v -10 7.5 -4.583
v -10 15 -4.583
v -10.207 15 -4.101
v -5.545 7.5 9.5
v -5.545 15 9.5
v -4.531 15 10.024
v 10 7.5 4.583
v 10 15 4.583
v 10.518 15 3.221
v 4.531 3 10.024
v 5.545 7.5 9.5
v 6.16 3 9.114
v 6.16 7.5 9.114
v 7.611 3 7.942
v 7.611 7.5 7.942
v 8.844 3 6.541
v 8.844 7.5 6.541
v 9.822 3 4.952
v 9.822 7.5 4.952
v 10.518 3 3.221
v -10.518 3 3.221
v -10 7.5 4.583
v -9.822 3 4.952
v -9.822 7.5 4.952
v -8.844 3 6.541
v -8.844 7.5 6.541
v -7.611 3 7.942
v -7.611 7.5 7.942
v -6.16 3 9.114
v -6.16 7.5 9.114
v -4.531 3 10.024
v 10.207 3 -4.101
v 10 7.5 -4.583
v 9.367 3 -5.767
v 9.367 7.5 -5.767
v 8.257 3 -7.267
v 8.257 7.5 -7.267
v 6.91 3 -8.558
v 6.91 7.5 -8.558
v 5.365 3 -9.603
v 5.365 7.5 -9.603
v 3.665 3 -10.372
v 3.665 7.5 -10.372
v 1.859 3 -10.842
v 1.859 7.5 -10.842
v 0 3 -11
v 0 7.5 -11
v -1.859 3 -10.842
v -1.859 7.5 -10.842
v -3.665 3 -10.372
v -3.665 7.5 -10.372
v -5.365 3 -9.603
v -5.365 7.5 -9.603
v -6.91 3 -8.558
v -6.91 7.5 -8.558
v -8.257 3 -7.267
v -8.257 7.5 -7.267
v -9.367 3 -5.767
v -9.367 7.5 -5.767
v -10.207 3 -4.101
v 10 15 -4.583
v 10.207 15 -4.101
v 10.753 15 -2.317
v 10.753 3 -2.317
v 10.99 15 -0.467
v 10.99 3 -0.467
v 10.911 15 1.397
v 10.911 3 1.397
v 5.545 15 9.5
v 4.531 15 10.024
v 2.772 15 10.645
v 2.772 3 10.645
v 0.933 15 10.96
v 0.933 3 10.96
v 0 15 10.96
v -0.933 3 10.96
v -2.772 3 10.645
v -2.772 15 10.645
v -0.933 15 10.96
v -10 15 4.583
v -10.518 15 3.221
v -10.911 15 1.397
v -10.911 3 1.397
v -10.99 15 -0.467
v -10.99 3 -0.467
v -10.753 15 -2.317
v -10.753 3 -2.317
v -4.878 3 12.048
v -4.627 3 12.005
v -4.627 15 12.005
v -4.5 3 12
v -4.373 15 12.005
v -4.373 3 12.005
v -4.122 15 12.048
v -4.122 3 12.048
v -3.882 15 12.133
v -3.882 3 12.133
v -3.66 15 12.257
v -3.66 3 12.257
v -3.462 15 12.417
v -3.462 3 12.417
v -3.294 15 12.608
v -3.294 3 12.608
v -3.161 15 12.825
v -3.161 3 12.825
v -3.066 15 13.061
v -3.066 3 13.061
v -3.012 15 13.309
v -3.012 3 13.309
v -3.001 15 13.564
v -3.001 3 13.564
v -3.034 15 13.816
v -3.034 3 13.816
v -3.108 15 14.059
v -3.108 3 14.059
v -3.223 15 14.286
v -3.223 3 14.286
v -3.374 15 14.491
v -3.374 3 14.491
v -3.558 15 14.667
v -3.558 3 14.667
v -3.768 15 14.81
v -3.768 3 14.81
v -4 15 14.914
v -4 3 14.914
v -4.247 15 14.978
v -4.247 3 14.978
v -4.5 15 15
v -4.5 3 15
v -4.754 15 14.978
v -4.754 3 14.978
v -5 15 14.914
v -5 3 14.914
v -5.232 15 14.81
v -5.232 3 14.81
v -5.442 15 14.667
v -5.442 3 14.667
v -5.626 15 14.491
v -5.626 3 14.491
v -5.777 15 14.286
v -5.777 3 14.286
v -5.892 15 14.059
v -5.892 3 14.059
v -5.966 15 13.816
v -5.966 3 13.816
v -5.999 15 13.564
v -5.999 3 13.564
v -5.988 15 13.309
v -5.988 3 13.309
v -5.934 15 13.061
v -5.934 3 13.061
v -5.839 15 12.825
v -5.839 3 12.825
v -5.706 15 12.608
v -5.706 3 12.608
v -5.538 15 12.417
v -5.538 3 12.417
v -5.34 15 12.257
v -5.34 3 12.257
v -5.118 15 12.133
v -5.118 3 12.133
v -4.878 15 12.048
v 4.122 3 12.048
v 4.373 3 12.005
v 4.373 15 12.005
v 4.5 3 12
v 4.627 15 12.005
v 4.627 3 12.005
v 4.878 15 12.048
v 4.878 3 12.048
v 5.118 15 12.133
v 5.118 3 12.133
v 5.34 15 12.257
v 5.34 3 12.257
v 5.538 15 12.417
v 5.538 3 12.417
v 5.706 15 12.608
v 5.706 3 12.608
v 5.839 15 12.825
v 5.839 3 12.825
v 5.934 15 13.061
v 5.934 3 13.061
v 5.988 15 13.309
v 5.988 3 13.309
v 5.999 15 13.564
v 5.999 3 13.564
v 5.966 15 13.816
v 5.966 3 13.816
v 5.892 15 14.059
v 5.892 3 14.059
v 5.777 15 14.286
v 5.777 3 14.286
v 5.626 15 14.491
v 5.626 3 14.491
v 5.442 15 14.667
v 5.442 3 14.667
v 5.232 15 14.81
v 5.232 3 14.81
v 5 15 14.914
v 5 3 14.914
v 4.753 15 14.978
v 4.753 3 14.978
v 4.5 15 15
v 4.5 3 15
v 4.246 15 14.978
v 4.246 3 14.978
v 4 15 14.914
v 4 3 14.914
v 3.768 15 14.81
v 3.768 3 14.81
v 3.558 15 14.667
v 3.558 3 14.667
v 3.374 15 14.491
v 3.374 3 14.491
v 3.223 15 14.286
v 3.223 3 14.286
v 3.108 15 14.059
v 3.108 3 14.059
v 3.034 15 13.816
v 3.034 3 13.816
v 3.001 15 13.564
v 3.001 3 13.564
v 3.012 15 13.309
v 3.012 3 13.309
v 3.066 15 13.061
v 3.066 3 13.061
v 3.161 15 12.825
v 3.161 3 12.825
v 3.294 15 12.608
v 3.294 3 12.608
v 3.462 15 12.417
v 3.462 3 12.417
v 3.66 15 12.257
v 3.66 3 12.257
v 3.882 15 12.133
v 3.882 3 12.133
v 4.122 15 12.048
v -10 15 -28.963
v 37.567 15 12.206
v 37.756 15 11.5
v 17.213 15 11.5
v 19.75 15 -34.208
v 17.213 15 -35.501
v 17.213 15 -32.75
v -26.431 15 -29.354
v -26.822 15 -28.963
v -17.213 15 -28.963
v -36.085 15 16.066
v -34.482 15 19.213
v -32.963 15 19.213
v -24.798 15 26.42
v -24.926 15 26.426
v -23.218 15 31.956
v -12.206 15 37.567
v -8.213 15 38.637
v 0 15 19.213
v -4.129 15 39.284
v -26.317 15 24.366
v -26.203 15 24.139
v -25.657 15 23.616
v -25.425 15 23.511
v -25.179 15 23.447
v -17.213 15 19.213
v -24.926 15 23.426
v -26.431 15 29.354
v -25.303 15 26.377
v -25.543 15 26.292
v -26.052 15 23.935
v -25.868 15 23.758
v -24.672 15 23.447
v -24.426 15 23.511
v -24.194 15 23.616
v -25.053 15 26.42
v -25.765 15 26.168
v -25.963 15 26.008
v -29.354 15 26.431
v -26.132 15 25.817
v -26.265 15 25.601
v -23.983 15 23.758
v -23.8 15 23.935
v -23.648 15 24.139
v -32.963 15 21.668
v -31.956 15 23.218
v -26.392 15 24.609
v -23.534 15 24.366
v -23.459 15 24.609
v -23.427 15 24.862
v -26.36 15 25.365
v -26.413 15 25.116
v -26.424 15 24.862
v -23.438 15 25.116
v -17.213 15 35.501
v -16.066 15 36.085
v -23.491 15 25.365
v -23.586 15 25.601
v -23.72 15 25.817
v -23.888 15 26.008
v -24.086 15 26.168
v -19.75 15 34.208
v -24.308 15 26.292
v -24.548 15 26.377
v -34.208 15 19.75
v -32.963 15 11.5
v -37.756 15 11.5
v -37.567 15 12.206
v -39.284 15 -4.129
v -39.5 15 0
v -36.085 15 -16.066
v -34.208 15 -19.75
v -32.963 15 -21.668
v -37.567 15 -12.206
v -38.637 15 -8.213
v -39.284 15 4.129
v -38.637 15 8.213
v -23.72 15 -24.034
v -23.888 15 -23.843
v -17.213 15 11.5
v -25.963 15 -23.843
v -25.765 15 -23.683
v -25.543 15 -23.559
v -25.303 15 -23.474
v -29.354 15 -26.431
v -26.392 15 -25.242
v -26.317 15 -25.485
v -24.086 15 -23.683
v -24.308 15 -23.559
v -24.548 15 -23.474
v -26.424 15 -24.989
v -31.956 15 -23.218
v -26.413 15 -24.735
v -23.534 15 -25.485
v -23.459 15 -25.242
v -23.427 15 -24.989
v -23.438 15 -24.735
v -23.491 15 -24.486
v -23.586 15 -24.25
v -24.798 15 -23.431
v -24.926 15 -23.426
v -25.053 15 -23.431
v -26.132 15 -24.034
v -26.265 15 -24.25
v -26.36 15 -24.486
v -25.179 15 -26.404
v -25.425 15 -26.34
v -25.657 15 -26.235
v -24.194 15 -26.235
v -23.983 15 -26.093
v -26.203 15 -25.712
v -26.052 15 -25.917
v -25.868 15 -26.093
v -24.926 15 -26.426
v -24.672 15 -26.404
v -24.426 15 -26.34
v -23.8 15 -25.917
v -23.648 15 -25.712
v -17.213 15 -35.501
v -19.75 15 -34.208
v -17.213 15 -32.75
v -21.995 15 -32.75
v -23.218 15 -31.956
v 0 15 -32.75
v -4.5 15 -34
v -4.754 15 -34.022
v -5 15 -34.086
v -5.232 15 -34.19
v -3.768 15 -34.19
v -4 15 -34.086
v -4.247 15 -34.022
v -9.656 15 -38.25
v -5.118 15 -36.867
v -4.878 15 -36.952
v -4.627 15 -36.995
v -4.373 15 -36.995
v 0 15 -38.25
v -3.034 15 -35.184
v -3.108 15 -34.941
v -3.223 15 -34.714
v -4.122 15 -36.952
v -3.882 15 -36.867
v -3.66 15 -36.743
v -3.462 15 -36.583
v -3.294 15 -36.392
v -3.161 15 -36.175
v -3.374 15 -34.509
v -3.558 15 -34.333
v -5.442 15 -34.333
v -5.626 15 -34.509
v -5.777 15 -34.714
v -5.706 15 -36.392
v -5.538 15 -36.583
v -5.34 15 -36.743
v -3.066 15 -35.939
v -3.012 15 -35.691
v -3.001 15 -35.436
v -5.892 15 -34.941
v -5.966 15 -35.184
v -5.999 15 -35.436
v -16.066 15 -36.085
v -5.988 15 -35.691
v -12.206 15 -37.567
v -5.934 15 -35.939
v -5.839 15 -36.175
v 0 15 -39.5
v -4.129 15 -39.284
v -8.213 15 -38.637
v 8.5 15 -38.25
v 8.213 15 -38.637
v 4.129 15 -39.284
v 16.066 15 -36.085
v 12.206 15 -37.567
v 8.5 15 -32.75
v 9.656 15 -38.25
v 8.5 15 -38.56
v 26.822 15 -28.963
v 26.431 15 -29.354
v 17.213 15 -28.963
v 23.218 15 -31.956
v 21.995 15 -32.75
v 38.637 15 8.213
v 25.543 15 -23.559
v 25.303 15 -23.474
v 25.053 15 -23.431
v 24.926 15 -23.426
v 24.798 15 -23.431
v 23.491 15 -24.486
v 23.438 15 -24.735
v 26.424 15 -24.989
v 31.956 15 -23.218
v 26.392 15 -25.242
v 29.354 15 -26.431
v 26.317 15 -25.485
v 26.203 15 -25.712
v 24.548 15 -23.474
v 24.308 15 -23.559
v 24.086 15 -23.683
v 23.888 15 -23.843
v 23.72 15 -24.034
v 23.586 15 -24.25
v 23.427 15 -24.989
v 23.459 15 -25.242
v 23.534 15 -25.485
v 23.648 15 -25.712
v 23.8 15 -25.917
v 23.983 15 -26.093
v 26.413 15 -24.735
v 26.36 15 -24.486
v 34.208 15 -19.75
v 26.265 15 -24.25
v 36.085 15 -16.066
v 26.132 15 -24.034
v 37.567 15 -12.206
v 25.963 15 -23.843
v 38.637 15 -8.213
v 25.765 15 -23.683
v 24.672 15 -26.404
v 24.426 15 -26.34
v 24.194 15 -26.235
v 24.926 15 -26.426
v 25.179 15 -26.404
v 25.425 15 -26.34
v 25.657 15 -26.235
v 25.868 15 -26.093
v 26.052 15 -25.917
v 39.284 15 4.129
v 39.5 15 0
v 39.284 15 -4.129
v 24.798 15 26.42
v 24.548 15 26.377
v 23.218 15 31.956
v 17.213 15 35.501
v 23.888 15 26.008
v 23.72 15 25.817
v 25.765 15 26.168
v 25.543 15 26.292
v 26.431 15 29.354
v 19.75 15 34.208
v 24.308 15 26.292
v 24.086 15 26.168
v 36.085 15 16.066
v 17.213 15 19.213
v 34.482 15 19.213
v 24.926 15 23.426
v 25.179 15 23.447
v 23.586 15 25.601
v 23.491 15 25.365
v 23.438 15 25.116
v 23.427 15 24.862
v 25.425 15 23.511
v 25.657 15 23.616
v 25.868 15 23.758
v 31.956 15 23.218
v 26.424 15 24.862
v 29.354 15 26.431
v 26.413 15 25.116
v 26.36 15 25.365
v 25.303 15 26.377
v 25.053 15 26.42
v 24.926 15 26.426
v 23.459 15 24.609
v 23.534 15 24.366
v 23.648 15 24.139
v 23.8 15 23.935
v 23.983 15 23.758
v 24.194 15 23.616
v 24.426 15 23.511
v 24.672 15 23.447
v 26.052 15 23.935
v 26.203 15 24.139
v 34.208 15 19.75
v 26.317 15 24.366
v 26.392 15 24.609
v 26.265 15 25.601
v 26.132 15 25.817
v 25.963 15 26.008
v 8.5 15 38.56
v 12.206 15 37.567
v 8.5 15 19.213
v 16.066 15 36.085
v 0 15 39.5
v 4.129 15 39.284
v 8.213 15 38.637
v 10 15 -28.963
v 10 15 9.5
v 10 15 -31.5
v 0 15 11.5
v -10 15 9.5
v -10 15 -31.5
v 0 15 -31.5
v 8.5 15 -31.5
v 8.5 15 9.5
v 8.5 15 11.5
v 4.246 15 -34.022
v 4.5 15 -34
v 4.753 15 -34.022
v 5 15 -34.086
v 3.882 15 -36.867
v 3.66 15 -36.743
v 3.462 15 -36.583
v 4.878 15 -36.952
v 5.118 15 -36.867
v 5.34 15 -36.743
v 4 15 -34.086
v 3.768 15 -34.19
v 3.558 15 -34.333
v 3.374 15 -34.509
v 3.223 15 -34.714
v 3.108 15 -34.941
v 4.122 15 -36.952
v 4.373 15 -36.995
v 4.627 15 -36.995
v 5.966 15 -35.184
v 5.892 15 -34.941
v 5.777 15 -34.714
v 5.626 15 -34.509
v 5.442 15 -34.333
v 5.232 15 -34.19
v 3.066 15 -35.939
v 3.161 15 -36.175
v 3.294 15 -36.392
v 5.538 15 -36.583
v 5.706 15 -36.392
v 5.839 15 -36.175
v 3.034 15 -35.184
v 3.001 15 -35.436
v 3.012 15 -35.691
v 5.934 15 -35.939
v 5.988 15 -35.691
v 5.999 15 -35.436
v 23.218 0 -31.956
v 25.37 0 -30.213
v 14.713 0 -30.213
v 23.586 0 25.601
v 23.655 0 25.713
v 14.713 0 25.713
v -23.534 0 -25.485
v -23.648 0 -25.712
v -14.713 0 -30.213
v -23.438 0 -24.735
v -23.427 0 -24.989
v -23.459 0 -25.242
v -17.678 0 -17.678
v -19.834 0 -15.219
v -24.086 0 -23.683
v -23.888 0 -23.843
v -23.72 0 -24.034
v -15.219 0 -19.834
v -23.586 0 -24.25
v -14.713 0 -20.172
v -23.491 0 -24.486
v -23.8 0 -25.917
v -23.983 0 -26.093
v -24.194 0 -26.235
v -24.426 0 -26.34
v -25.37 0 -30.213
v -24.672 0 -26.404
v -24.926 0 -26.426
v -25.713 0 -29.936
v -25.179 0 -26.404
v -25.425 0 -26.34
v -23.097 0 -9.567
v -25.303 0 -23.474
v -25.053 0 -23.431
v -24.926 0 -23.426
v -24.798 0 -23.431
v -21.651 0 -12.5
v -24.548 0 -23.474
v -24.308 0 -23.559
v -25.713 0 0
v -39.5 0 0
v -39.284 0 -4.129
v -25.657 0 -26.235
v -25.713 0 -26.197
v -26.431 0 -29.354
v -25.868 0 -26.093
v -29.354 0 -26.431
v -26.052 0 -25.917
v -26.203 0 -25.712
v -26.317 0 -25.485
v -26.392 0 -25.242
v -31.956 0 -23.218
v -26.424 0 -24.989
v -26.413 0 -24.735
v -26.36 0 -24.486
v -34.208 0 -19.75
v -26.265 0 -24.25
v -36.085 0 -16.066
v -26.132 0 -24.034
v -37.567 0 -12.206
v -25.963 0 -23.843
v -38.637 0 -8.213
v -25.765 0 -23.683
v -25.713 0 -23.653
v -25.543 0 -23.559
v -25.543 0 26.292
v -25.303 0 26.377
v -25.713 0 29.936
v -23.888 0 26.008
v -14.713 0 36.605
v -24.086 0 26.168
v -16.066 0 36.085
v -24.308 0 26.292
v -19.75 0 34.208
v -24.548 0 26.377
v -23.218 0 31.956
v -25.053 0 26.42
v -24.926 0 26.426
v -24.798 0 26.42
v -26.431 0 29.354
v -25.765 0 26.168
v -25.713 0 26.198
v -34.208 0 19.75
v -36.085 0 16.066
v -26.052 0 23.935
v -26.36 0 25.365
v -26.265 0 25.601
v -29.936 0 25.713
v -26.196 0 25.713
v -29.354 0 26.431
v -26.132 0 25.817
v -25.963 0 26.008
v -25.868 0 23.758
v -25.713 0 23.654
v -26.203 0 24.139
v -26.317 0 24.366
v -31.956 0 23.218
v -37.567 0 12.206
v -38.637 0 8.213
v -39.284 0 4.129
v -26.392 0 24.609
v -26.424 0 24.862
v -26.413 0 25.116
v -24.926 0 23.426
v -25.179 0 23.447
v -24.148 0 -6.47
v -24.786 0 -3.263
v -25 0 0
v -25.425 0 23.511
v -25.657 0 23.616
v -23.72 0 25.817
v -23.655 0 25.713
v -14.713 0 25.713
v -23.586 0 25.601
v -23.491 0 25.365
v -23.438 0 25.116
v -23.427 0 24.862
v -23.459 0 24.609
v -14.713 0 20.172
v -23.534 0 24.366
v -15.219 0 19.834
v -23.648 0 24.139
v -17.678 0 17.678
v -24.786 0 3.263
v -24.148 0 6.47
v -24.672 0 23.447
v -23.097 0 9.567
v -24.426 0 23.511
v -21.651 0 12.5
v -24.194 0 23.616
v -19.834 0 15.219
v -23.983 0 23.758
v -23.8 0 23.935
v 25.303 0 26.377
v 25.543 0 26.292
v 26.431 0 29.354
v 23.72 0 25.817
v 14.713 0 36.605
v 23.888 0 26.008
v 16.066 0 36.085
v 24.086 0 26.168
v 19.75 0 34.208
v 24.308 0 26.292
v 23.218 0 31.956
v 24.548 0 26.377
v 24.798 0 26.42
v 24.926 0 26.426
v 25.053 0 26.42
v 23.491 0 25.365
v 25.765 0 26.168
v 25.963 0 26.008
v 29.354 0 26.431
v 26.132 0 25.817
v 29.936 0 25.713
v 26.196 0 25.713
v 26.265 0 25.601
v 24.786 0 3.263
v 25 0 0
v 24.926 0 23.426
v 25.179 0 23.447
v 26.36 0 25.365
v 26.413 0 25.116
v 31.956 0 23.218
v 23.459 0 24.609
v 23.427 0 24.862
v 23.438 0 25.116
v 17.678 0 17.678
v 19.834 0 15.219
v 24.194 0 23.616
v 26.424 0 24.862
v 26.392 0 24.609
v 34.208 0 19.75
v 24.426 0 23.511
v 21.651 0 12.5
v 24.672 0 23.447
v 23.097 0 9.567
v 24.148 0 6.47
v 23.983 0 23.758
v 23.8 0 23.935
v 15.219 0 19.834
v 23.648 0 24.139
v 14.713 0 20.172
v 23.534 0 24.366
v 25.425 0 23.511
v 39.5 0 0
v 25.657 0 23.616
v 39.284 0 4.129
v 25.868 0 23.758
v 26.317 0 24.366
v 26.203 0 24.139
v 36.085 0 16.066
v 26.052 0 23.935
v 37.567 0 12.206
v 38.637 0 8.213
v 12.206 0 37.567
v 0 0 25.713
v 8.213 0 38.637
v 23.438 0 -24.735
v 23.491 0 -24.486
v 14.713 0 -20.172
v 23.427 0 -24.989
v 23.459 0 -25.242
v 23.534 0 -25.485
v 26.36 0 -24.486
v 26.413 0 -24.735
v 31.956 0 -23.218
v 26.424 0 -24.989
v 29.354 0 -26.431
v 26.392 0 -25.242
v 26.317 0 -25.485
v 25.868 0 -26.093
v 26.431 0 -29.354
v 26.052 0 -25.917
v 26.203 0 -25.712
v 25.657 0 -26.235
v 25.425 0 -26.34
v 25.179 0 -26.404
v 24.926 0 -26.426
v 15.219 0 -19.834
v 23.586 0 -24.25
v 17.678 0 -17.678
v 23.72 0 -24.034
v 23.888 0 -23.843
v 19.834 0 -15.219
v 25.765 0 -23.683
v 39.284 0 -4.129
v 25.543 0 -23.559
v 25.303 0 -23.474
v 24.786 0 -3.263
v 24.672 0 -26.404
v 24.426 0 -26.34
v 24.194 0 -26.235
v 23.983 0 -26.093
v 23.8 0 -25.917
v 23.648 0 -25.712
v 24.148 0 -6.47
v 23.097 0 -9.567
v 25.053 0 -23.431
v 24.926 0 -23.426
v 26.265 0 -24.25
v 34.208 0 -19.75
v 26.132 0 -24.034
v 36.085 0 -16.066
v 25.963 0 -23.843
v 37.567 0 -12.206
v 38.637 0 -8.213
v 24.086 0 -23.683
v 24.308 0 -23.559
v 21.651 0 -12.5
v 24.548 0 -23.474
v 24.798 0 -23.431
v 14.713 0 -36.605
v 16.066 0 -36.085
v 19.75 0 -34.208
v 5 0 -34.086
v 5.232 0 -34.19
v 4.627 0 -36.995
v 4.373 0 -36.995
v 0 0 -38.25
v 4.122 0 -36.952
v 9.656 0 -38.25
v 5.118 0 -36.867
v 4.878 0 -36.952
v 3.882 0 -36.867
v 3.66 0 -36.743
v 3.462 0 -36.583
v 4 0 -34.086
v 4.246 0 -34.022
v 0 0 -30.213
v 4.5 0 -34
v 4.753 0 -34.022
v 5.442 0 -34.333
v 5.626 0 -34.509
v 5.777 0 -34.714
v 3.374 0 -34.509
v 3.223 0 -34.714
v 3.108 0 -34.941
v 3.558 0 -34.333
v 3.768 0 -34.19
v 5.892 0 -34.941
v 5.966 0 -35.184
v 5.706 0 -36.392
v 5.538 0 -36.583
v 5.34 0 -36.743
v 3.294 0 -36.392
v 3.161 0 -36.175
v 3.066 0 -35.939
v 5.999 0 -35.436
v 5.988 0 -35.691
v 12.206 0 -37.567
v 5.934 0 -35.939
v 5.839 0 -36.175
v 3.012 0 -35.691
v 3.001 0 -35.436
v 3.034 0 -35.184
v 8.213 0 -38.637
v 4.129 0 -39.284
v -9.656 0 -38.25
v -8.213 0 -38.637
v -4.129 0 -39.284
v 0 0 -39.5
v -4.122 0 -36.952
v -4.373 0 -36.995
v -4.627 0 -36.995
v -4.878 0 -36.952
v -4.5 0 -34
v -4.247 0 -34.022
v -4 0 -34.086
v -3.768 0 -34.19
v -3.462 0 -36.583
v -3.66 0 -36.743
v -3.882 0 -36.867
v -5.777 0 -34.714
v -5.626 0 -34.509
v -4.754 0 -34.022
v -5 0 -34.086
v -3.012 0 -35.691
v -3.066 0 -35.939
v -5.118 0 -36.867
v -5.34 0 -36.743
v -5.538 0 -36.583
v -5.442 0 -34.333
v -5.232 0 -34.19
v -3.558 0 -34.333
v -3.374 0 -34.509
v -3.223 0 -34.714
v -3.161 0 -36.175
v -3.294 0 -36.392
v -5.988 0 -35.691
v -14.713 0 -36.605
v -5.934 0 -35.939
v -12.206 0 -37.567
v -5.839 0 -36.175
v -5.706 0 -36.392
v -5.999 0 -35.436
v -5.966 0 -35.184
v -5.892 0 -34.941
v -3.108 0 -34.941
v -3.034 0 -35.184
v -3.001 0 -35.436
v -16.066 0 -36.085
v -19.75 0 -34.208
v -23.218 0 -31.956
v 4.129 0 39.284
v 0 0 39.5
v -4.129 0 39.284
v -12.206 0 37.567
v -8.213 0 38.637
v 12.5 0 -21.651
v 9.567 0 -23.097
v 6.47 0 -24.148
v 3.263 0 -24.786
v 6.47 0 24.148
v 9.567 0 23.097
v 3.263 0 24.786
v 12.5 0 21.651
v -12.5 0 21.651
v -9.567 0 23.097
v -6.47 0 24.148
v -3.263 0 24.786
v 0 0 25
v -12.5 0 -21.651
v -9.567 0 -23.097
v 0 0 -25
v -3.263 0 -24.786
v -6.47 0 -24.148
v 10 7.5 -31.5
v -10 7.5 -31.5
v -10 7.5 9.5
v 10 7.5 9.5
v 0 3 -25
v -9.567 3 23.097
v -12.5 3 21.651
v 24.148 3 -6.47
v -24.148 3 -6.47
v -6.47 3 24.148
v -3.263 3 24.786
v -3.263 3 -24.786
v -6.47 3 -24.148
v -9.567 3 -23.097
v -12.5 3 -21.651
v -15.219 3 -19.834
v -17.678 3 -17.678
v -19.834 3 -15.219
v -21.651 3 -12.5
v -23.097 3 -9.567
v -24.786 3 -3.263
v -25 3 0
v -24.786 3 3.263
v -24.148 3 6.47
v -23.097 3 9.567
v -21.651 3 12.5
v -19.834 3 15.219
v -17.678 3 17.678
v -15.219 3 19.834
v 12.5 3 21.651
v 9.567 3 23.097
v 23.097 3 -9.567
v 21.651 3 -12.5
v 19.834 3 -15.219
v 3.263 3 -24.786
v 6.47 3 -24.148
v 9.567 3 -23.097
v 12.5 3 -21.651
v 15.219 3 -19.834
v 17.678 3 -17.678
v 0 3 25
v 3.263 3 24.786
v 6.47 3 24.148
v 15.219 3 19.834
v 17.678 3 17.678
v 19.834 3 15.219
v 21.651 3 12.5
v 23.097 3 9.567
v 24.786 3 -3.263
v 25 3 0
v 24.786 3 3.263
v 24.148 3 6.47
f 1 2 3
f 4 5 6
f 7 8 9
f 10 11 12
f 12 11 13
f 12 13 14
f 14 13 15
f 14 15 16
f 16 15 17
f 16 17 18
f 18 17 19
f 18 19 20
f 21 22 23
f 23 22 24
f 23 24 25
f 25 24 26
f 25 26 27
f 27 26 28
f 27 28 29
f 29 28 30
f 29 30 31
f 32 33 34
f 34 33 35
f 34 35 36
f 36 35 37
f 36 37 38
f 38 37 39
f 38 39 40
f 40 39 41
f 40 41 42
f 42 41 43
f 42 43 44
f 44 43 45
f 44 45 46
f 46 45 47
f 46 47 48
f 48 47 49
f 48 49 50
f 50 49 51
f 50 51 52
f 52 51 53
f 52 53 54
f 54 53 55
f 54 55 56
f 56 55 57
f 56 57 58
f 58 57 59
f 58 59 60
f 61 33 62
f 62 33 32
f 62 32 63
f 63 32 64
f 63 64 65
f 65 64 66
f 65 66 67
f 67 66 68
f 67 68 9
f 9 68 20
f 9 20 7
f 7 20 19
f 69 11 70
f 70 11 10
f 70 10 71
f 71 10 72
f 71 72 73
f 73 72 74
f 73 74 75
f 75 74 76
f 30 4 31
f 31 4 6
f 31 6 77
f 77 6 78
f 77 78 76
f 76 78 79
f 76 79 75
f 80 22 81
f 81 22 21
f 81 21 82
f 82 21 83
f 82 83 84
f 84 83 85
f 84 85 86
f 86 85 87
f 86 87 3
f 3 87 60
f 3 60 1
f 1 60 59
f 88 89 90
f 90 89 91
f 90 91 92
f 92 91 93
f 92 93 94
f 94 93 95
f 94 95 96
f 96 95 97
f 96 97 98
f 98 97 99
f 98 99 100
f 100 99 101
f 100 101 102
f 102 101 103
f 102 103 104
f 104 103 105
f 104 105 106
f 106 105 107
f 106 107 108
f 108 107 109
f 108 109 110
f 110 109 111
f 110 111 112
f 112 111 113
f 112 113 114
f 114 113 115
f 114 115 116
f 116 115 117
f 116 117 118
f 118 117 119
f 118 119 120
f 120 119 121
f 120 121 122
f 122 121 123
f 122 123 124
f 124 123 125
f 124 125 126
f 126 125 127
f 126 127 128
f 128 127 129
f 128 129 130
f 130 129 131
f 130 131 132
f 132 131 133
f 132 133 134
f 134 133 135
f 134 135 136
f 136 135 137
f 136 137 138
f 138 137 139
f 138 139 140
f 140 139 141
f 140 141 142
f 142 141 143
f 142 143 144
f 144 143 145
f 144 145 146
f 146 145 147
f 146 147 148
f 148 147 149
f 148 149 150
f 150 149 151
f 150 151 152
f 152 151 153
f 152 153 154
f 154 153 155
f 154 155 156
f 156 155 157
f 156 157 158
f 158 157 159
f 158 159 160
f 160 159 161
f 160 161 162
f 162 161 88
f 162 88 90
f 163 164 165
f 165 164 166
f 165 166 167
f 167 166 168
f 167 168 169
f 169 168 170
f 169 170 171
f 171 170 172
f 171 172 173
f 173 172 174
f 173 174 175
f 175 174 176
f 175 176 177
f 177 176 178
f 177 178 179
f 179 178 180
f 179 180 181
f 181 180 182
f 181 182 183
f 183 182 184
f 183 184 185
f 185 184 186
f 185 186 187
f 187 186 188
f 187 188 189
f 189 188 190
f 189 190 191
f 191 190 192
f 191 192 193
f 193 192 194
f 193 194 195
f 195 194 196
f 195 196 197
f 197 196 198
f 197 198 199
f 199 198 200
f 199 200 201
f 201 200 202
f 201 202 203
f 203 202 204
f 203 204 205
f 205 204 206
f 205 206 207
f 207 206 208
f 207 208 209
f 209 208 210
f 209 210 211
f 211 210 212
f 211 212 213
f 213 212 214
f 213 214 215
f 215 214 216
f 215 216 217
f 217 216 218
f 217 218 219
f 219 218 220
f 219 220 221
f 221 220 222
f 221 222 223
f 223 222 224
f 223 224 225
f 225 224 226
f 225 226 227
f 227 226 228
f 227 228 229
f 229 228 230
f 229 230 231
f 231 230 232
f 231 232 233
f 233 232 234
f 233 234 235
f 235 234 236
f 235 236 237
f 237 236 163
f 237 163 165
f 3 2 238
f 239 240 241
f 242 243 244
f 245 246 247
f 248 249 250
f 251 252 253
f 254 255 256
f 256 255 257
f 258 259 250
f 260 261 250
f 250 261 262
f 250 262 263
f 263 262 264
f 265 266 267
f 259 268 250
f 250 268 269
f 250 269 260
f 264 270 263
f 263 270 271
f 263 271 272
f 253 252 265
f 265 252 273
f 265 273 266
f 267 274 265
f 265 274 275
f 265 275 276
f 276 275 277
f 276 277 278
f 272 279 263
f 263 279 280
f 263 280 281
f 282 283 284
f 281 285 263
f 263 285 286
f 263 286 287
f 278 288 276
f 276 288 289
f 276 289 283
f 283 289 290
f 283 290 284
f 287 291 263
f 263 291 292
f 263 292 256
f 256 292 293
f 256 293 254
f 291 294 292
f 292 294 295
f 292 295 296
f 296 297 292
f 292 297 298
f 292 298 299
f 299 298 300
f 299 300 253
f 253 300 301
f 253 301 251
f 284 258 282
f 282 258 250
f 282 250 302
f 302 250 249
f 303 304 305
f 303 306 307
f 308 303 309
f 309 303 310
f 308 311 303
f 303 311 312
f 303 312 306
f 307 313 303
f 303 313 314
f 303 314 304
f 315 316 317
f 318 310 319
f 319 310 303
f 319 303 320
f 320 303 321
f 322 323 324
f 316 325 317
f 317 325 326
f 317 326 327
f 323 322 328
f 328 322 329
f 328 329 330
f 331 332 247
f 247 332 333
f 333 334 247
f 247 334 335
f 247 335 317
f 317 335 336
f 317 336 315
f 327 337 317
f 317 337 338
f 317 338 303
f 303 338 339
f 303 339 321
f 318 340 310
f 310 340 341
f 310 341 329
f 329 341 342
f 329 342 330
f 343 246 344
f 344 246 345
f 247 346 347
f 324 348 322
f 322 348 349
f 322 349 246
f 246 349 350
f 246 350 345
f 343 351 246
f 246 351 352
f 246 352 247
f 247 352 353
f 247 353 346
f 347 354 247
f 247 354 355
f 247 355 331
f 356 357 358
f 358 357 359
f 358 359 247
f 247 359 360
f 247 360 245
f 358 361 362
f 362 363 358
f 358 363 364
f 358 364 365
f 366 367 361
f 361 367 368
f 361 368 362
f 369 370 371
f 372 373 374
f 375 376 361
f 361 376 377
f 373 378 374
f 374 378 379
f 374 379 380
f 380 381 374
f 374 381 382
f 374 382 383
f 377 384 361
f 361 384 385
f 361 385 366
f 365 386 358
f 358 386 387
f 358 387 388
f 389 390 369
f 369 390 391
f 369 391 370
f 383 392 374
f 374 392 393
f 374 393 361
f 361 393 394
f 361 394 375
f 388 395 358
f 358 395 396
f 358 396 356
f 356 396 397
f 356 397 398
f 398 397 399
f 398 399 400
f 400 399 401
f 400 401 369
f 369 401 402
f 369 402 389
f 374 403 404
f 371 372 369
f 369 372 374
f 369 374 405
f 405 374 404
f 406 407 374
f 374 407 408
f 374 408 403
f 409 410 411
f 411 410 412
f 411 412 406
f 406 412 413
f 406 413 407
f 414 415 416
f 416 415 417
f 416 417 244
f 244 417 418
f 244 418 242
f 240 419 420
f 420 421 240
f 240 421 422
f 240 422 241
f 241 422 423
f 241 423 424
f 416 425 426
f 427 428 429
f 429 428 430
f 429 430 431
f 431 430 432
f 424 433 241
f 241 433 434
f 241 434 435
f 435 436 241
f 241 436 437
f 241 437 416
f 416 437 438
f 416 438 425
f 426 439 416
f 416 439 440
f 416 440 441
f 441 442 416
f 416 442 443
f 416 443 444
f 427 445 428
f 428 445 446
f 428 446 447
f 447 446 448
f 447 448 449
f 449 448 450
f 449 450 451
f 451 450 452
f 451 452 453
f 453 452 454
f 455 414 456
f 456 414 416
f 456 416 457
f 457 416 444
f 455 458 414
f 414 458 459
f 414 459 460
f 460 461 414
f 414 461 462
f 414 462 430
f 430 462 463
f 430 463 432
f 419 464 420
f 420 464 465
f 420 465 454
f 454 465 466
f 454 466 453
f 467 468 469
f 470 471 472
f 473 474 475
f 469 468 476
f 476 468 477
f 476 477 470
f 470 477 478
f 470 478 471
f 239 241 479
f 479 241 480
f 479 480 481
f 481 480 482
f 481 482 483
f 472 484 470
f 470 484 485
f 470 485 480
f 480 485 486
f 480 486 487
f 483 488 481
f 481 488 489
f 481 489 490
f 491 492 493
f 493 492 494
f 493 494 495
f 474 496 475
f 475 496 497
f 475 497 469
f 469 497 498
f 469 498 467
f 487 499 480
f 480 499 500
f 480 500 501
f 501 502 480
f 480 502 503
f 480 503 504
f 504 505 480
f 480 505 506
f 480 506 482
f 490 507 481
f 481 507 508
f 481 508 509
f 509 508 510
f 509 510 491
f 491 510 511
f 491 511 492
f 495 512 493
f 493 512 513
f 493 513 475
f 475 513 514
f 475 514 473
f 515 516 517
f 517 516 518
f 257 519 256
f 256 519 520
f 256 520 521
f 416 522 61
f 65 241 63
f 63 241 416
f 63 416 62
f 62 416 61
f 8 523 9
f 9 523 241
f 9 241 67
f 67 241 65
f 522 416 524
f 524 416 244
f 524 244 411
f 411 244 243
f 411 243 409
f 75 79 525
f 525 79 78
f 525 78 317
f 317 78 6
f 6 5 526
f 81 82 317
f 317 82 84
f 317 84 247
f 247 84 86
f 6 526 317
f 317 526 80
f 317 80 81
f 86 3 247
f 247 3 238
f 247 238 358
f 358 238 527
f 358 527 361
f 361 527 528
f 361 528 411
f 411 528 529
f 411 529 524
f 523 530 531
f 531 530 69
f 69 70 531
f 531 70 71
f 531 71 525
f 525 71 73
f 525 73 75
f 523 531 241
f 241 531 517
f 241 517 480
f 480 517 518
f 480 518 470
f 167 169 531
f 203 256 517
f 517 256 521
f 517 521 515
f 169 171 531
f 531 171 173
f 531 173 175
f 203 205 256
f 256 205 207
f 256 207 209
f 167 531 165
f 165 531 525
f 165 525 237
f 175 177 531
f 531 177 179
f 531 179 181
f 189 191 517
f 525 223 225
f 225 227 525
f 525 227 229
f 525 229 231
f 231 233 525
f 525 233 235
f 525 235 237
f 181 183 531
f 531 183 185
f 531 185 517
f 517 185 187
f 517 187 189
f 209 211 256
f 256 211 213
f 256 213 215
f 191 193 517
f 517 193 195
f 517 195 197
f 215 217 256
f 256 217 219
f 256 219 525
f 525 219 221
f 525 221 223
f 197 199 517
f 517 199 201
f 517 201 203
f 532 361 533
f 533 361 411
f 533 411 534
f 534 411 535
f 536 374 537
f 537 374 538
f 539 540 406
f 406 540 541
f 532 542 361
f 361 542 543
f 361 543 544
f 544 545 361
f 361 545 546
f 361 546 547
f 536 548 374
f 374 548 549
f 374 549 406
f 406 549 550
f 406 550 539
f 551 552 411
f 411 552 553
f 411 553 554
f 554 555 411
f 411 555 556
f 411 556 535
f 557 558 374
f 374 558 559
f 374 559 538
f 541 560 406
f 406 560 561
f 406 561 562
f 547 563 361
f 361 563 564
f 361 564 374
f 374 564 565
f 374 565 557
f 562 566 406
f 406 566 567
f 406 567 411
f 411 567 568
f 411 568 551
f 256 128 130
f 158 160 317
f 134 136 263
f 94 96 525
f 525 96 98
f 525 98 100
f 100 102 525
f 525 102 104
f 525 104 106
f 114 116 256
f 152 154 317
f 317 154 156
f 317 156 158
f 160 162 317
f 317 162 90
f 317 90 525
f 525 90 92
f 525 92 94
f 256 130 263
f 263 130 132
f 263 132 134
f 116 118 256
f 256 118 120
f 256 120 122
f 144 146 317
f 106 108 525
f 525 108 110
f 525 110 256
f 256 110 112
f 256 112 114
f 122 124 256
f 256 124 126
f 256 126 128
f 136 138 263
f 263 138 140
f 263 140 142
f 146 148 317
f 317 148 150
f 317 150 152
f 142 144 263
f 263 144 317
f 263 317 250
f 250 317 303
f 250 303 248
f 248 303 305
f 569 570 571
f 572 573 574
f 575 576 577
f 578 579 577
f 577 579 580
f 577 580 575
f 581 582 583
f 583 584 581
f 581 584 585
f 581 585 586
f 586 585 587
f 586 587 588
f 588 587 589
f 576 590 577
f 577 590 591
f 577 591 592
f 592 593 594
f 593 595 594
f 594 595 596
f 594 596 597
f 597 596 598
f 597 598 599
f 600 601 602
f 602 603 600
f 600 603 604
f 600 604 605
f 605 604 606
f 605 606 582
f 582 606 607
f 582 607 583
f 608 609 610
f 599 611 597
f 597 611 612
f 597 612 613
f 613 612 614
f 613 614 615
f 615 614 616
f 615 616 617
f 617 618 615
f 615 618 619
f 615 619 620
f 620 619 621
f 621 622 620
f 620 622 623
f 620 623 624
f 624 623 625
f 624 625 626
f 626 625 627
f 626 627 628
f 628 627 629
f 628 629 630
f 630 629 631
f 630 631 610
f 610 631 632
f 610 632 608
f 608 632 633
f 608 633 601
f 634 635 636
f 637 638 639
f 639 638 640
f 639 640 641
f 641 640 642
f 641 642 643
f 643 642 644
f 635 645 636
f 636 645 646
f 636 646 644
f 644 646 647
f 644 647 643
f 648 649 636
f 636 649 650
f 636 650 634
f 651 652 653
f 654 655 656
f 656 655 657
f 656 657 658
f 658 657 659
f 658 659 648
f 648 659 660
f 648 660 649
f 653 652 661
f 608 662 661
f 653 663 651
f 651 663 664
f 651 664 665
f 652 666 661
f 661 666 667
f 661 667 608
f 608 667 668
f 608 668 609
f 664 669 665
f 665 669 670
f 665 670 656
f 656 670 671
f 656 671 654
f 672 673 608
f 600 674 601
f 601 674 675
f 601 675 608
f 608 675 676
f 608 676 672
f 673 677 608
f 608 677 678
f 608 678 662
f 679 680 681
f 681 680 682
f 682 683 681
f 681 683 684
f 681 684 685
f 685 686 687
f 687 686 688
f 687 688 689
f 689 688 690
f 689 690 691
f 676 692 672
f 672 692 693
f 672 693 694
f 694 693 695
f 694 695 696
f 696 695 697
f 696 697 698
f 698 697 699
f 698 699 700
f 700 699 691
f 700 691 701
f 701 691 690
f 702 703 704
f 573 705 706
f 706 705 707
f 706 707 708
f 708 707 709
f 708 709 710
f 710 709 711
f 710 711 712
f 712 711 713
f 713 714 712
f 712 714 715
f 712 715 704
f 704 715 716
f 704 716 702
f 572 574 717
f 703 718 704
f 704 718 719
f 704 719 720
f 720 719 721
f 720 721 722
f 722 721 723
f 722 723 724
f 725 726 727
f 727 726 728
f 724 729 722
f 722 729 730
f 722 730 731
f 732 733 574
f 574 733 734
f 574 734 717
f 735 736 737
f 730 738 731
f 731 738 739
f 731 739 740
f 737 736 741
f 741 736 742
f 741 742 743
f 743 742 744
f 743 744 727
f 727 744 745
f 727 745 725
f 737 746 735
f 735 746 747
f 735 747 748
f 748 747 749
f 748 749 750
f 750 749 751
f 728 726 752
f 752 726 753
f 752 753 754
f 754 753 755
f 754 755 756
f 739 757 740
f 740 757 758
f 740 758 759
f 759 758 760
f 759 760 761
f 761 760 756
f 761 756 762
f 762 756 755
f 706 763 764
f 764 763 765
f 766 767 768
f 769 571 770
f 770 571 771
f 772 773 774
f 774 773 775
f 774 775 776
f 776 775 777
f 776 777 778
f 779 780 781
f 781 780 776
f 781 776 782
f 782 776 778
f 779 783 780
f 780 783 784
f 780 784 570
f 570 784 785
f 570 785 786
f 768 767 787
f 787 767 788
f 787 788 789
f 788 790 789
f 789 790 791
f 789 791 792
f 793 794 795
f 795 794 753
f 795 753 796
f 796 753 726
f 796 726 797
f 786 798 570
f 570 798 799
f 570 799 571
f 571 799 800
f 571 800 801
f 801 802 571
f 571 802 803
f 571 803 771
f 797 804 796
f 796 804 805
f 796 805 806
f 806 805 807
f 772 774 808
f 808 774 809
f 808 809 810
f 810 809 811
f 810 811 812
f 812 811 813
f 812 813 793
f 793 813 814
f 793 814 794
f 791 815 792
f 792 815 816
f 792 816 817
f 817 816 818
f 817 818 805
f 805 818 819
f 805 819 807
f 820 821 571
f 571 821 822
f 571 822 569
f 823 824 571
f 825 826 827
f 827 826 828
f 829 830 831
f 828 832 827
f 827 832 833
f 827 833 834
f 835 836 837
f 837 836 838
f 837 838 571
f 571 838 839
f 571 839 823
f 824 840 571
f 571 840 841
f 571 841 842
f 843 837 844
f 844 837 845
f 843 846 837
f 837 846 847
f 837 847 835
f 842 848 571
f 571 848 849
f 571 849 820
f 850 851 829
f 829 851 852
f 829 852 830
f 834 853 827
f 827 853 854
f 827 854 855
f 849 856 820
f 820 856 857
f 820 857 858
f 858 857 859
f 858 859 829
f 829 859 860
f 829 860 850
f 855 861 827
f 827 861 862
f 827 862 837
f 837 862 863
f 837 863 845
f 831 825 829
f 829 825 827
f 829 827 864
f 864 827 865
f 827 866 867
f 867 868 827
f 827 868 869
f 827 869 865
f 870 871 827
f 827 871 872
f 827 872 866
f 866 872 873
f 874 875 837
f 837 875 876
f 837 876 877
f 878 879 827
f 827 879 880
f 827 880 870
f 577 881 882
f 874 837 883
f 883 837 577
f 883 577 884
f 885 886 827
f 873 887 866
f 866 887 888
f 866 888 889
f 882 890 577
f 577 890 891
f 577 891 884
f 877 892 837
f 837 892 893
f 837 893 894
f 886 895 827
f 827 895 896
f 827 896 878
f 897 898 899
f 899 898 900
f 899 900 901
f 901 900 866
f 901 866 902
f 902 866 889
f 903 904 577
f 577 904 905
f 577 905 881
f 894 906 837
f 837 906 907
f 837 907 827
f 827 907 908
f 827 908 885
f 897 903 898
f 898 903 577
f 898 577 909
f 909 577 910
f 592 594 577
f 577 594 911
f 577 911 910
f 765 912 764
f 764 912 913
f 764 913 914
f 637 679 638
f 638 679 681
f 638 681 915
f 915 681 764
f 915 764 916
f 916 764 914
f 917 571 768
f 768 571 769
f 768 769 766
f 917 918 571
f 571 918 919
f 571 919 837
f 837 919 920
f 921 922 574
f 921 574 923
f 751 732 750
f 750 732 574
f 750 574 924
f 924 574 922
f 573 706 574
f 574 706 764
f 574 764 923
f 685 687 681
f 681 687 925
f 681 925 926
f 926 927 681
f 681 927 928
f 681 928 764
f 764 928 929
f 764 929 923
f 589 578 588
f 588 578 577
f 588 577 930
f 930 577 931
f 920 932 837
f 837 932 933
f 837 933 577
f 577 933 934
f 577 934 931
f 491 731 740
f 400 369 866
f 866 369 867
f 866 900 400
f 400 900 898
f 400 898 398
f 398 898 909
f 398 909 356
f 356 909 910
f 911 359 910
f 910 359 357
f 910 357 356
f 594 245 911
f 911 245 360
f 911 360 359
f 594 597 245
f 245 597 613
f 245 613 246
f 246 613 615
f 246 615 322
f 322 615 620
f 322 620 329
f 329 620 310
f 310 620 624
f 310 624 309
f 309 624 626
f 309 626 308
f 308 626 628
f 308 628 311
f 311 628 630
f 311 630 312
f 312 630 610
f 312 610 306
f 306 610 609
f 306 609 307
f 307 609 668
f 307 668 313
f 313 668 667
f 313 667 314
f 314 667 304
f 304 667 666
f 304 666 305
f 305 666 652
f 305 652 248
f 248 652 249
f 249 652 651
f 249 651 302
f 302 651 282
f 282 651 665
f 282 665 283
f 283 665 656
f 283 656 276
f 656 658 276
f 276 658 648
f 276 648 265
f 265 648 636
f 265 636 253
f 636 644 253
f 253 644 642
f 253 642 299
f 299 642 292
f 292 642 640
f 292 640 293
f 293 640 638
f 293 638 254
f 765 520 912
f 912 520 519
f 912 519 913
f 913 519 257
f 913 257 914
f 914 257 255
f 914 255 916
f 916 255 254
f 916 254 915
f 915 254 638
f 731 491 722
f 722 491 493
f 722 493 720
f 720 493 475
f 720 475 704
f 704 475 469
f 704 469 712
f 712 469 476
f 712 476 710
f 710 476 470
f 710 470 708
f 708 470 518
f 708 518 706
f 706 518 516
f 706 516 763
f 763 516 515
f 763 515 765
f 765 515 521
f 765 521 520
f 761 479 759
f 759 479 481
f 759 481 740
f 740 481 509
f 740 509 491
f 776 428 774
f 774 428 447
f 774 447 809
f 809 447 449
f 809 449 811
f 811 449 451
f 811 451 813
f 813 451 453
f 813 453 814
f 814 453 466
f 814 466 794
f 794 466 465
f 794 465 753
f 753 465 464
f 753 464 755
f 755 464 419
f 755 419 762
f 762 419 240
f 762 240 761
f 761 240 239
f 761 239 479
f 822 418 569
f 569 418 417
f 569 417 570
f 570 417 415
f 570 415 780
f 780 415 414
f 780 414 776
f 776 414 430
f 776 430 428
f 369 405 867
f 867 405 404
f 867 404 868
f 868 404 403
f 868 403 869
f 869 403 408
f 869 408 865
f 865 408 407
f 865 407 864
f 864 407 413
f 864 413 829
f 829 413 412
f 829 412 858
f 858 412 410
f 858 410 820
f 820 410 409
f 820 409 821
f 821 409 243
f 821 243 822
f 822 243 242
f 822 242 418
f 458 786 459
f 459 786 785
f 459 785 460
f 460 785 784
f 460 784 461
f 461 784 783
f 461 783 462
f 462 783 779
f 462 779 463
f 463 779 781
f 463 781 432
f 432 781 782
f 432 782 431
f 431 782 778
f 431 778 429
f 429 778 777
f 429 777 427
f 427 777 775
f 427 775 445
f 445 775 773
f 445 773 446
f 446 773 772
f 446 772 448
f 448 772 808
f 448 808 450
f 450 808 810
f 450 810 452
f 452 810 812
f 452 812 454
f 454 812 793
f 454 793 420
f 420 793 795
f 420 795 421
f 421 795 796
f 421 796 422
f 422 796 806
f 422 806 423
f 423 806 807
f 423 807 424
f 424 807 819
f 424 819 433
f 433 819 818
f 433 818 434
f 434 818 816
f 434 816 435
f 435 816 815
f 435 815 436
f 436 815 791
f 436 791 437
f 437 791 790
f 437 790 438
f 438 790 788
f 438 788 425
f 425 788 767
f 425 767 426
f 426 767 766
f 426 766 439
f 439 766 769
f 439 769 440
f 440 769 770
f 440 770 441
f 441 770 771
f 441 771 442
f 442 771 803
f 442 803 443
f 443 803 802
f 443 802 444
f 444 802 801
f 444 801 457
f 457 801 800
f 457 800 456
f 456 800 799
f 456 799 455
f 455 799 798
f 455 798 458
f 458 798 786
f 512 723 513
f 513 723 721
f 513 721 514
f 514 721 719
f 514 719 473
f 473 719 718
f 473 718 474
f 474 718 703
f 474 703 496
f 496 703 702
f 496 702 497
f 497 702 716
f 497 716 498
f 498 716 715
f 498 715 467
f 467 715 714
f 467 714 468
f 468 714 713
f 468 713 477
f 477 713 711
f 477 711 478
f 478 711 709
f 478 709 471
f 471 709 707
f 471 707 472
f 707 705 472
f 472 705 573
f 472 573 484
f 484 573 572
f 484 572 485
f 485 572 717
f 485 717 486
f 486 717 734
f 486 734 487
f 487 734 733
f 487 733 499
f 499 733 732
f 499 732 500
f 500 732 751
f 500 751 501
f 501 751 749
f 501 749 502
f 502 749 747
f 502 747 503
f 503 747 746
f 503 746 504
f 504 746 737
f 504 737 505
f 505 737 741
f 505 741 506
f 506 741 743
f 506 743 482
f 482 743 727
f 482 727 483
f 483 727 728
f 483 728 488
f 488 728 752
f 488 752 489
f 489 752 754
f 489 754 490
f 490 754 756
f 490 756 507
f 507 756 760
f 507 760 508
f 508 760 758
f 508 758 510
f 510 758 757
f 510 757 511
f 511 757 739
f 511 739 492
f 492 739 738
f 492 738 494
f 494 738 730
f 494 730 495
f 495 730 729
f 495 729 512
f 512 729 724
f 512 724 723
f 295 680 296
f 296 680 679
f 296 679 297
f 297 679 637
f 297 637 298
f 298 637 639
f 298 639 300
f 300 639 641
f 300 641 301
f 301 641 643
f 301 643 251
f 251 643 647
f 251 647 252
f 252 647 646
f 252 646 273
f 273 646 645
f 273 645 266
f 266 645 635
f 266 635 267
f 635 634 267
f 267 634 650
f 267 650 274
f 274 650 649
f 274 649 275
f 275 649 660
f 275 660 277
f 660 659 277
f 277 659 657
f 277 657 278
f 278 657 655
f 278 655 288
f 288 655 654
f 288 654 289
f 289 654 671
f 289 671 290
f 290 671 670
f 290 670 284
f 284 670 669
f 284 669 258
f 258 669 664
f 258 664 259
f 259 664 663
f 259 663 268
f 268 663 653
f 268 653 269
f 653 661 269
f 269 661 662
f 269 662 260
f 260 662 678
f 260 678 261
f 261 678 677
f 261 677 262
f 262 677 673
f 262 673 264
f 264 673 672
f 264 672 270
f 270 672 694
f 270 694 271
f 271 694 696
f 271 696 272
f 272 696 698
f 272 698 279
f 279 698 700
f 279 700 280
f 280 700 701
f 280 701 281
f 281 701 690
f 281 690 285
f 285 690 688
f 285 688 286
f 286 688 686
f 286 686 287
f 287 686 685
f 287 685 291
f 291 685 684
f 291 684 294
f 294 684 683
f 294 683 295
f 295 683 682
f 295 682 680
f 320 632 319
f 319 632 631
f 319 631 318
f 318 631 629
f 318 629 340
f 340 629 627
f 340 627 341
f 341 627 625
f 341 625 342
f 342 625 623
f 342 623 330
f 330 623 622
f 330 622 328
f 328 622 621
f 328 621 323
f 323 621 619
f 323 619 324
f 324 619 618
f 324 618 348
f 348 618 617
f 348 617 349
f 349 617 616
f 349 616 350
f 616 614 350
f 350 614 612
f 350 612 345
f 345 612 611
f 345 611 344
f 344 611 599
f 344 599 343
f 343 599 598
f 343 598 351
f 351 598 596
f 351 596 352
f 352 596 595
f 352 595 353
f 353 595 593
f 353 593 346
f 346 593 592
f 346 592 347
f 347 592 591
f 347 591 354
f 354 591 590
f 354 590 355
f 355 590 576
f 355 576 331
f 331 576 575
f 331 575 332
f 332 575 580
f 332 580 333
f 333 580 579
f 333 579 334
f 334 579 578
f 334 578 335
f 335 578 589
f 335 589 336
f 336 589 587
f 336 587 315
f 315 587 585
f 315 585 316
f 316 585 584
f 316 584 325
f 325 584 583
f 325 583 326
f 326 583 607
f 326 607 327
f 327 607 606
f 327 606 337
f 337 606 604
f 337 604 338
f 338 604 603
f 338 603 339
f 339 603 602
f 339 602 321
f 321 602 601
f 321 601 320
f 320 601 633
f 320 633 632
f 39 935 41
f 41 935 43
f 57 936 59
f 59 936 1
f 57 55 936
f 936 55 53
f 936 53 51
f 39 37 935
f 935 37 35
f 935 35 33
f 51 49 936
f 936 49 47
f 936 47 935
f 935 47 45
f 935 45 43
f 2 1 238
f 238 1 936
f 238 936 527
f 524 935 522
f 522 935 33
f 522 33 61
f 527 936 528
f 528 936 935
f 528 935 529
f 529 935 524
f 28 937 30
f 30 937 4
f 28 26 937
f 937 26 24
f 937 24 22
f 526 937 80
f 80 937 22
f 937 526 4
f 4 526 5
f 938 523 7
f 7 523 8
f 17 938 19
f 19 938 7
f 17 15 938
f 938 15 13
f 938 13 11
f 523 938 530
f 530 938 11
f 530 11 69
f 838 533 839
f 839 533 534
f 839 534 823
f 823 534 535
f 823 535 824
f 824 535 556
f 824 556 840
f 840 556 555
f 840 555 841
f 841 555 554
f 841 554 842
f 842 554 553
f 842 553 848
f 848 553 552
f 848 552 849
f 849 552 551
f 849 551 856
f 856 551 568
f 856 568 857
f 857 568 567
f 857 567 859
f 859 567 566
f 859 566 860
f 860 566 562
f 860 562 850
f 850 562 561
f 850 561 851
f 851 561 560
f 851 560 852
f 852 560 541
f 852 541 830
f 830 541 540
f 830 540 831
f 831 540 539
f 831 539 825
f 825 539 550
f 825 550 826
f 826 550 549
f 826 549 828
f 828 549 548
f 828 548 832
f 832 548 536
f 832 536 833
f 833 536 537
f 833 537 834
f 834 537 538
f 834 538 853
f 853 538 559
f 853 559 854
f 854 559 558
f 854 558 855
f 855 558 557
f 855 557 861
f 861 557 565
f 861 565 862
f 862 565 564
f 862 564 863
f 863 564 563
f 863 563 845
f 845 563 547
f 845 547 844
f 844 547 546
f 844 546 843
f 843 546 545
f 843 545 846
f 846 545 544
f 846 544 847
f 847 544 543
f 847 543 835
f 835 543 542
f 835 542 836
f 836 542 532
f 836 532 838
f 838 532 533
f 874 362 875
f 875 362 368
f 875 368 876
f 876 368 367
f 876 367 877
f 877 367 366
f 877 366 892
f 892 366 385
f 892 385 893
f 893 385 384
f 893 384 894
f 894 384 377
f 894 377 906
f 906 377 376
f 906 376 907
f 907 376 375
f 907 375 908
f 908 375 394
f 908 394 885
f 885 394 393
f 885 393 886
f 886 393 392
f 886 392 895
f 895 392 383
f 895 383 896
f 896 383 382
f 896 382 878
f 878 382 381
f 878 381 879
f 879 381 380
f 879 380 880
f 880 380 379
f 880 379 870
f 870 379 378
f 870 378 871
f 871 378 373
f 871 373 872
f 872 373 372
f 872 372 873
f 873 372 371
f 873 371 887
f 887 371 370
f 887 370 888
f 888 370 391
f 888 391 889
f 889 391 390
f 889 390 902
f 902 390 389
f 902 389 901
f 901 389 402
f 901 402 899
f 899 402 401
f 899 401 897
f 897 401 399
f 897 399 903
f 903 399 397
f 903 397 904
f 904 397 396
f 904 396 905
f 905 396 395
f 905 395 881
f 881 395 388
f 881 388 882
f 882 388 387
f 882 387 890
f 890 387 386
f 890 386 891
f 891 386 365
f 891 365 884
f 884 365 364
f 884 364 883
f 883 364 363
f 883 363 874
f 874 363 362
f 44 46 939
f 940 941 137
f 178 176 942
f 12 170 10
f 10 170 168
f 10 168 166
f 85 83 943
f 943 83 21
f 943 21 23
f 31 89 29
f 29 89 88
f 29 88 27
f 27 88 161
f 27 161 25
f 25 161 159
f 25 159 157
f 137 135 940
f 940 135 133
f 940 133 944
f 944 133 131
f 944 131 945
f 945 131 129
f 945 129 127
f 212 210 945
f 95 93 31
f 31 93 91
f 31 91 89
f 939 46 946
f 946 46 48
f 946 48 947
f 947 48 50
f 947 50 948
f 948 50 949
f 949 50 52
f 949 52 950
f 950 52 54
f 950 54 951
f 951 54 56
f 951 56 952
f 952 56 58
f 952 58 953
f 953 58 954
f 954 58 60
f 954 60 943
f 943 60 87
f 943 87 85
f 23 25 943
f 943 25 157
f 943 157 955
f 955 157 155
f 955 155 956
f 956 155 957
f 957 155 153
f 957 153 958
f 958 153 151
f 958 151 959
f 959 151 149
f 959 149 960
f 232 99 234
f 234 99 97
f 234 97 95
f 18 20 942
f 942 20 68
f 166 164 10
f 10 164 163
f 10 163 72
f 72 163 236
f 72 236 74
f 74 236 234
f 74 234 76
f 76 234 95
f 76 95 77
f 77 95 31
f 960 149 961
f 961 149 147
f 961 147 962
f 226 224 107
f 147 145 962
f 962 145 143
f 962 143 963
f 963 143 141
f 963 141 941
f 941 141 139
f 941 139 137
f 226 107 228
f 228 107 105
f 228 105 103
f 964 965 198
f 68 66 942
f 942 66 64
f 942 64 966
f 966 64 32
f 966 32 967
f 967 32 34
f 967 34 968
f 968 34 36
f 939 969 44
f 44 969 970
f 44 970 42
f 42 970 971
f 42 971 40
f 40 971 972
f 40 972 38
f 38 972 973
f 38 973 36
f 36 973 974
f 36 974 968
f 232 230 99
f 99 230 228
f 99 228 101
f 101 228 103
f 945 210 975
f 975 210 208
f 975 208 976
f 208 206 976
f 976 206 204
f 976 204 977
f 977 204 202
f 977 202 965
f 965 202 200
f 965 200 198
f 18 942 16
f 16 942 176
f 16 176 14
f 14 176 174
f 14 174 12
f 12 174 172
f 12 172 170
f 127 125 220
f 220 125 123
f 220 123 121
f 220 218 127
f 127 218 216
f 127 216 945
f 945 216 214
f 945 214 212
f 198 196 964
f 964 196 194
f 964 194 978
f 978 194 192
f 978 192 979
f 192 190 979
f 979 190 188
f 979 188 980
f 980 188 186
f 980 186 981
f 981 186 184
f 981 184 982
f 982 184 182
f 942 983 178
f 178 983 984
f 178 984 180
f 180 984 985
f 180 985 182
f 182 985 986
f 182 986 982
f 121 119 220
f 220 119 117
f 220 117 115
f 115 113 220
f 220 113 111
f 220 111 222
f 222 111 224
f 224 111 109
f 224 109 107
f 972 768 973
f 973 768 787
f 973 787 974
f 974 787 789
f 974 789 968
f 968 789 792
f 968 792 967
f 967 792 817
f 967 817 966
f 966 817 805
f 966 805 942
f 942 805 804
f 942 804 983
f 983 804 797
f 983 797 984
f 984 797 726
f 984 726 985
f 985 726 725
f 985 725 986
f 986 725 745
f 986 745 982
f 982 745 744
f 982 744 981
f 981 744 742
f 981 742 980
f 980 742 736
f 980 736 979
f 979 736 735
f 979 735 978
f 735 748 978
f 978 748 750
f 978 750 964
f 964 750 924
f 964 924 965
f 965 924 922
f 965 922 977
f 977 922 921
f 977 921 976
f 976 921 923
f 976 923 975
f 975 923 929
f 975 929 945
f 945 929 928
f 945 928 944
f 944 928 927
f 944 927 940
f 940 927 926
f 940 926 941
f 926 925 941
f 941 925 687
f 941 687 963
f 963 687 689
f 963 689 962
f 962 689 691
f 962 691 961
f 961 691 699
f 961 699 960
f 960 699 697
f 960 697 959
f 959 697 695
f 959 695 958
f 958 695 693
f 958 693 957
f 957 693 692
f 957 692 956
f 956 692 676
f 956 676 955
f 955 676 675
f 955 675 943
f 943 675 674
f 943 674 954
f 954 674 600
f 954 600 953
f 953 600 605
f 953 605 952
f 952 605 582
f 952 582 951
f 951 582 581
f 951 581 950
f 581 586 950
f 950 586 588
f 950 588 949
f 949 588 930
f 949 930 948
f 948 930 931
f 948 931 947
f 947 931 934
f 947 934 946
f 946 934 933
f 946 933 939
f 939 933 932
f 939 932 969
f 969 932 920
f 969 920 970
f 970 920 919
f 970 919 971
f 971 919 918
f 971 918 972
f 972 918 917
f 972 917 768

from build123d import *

# Parameters (mm, degrees)
CROQUIS1_R              = 39.5
CROQUIS1_R_2            = 11
CROQUIS1_R_3            = 1.5
SALIENTE_EXTRUIR2_DEPTH = 15
CROQUIS2_R              = 1.5
CROQUIS2_W              = 20
CROQUIS2_H              = 41
CORTAR_EXTRUIR1_DEPTH   = 7.5
CROQUIS2_2_R            = 1.5
CORTAR_EXTRUIR2_DEPTH   = 16
CROQUIS3_R              = 25
CORTAR_EXTRUIR3_DEPTH   = 3


with BuildPart() as part:
    # Croquis1 → Saliente-Extruir2 (new body)
    with BuildSketch(Plane(origin=(0, 0, 0), x_dir=(1, 0, 0), z_dir=(0, 1, 0))):
        Circle(CROQUIS1_R)
        Circle(CROQUIS1_R_2, mode=Mode.SUBTRACT)
        with Locations((24.925514037, 24.925514037)):
            Circle(CROQUIS1_R_3, mode=Mode.SUBTRACT)
        with Locations((24.925514037, -24.925514037)):
            Circle(CROQUIS1_R_3, mode=Mode.SUBTRACT)
        with Locations((-24.925514037, -24.925514037)):
            Circle(CROQUIS1_R_3, mode=Mode.SUBTRACT)
        with Locations((-24.925514037, 24.925514037)):
            Circle(CROQUIS1_R_3, mode=Mode.SUBTRACT)
    extrude(amount=SALIENTE_EXTRUIR2_DEPTH)

    # Croquis2 → Cortar-Extruir1 (cut)
    with BuildSketch(Plane(origin=(0, 15, 0), x_dir=(1, 0, 0), z_dir=(0, 1, 0))):
        with Locations((-4.5, -13.5)):
            Circle(CROQUIS2_R)
        with Locations((4.5, -13.5)):
            Circle(CROQUIS2_R)
        with Locations((4.5, 35.5)):
            Circle(CROQUIS2_R)
        with Locations((-4.5, 35.5)):
            Circle(CROQUIS2_R)
        with Locations((0, 11)):
            Rectangle(CROQUIS2_W, CROQUIS2_H)
    extrude(amount=-CORTAR_EXTRUIR1_DEPTH, mode=Mode.SUBTRACT)

    # Croquis2<2> → Cortar-Extruir2 (cut, through all)
    with BuildSketch(Plane(origin=(0, 15, 0), x_dir=(1, 0, 0), z_dir=(0, 1, 0))):
        with Locations((-4.5, 35.5)):
            Circle(CROQUIS2_2_R)
        with Locations((4.5, 35.5)):
            Circle(CROQUIS2_2_R)
        with Locations((4.5, -13.5)):
            Circle(CROQUIS2_2_R)
        with Locations((-4.5, -13.5)):
            Circle(CROQUIS2_2_R)
    extrude(amount=-CORTAR_EXTRUIR2_DEPTH, mode=Mode.SUBTRACT)

    # Croquis3 → Cortar-Extruir3 (cut)
    with BuildSketch(Plane.XZ):
        Circle(CROQUIS3_R)
    extrude(amount=-CORTAR_EXTRUIR3_DEPTH, mode=Mode.SUBTRACT)


solid = part.part
